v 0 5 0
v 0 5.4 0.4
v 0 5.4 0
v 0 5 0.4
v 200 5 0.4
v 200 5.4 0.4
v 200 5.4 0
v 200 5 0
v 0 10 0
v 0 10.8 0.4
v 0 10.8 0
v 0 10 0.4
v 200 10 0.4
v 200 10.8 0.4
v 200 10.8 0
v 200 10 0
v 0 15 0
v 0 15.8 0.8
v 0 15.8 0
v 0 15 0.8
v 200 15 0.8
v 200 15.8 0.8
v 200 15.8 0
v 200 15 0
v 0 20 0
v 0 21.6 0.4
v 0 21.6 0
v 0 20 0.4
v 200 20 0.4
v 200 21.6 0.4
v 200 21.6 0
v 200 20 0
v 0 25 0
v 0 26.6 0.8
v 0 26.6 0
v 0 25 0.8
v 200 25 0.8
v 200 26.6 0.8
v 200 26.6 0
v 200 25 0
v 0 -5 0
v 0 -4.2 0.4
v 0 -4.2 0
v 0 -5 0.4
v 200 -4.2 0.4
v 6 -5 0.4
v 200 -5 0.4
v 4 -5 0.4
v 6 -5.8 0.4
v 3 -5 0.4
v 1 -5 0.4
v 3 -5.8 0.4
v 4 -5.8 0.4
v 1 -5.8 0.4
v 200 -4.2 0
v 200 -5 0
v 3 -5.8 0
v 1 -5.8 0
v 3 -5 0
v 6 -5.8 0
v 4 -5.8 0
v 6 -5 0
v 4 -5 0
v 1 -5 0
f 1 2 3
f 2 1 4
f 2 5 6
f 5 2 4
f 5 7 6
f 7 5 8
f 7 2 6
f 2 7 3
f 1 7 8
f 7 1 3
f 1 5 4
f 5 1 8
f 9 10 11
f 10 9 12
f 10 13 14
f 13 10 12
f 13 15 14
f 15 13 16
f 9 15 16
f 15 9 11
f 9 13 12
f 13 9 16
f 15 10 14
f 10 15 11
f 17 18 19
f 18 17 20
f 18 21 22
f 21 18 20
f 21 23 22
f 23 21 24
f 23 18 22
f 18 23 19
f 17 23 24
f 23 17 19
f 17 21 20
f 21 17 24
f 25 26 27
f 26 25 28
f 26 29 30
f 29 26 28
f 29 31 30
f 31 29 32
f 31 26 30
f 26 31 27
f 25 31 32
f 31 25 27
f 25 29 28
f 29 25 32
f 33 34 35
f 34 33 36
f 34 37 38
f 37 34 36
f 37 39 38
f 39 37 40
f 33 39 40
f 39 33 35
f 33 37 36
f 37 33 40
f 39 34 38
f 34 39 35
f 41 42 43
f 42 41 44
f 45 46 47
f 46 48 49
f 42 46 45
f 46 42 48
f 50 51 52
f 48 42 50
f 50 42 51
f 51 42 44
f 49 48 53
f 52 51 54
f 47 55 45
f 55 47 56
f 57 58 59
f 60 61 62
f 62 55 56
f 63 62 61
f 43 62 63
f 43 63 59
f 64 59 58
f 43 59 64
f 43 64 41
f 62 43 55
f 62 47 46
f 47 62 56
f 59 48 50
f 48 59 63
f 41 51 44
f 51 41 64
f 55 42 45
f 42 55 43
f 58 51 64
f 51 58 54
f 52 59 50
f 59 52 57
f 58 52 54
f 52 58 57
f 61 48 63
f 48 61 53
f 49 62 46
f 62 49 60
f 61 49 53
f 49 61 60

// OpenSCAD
translate([0,5,0])
	cube([200,0.4,0.4]);

translate([0,10,0])
	cube([200,0.8,0.4]);

translate([0,15,0])
	cube([200,0.8,0.8]);

translate([0,20,0])
	cube([200,1.6,0.4]);

translate([0,25,0])
	cube([200,1.6,0.8]);

translate([0,-5,0])
	cube([200,0.8,0.4]);
translate([1,-5.8,0])
	cube([2,0.8,0.4]);
translate([4,-5.8,0])
	cube([2,0.8,0.4]);
